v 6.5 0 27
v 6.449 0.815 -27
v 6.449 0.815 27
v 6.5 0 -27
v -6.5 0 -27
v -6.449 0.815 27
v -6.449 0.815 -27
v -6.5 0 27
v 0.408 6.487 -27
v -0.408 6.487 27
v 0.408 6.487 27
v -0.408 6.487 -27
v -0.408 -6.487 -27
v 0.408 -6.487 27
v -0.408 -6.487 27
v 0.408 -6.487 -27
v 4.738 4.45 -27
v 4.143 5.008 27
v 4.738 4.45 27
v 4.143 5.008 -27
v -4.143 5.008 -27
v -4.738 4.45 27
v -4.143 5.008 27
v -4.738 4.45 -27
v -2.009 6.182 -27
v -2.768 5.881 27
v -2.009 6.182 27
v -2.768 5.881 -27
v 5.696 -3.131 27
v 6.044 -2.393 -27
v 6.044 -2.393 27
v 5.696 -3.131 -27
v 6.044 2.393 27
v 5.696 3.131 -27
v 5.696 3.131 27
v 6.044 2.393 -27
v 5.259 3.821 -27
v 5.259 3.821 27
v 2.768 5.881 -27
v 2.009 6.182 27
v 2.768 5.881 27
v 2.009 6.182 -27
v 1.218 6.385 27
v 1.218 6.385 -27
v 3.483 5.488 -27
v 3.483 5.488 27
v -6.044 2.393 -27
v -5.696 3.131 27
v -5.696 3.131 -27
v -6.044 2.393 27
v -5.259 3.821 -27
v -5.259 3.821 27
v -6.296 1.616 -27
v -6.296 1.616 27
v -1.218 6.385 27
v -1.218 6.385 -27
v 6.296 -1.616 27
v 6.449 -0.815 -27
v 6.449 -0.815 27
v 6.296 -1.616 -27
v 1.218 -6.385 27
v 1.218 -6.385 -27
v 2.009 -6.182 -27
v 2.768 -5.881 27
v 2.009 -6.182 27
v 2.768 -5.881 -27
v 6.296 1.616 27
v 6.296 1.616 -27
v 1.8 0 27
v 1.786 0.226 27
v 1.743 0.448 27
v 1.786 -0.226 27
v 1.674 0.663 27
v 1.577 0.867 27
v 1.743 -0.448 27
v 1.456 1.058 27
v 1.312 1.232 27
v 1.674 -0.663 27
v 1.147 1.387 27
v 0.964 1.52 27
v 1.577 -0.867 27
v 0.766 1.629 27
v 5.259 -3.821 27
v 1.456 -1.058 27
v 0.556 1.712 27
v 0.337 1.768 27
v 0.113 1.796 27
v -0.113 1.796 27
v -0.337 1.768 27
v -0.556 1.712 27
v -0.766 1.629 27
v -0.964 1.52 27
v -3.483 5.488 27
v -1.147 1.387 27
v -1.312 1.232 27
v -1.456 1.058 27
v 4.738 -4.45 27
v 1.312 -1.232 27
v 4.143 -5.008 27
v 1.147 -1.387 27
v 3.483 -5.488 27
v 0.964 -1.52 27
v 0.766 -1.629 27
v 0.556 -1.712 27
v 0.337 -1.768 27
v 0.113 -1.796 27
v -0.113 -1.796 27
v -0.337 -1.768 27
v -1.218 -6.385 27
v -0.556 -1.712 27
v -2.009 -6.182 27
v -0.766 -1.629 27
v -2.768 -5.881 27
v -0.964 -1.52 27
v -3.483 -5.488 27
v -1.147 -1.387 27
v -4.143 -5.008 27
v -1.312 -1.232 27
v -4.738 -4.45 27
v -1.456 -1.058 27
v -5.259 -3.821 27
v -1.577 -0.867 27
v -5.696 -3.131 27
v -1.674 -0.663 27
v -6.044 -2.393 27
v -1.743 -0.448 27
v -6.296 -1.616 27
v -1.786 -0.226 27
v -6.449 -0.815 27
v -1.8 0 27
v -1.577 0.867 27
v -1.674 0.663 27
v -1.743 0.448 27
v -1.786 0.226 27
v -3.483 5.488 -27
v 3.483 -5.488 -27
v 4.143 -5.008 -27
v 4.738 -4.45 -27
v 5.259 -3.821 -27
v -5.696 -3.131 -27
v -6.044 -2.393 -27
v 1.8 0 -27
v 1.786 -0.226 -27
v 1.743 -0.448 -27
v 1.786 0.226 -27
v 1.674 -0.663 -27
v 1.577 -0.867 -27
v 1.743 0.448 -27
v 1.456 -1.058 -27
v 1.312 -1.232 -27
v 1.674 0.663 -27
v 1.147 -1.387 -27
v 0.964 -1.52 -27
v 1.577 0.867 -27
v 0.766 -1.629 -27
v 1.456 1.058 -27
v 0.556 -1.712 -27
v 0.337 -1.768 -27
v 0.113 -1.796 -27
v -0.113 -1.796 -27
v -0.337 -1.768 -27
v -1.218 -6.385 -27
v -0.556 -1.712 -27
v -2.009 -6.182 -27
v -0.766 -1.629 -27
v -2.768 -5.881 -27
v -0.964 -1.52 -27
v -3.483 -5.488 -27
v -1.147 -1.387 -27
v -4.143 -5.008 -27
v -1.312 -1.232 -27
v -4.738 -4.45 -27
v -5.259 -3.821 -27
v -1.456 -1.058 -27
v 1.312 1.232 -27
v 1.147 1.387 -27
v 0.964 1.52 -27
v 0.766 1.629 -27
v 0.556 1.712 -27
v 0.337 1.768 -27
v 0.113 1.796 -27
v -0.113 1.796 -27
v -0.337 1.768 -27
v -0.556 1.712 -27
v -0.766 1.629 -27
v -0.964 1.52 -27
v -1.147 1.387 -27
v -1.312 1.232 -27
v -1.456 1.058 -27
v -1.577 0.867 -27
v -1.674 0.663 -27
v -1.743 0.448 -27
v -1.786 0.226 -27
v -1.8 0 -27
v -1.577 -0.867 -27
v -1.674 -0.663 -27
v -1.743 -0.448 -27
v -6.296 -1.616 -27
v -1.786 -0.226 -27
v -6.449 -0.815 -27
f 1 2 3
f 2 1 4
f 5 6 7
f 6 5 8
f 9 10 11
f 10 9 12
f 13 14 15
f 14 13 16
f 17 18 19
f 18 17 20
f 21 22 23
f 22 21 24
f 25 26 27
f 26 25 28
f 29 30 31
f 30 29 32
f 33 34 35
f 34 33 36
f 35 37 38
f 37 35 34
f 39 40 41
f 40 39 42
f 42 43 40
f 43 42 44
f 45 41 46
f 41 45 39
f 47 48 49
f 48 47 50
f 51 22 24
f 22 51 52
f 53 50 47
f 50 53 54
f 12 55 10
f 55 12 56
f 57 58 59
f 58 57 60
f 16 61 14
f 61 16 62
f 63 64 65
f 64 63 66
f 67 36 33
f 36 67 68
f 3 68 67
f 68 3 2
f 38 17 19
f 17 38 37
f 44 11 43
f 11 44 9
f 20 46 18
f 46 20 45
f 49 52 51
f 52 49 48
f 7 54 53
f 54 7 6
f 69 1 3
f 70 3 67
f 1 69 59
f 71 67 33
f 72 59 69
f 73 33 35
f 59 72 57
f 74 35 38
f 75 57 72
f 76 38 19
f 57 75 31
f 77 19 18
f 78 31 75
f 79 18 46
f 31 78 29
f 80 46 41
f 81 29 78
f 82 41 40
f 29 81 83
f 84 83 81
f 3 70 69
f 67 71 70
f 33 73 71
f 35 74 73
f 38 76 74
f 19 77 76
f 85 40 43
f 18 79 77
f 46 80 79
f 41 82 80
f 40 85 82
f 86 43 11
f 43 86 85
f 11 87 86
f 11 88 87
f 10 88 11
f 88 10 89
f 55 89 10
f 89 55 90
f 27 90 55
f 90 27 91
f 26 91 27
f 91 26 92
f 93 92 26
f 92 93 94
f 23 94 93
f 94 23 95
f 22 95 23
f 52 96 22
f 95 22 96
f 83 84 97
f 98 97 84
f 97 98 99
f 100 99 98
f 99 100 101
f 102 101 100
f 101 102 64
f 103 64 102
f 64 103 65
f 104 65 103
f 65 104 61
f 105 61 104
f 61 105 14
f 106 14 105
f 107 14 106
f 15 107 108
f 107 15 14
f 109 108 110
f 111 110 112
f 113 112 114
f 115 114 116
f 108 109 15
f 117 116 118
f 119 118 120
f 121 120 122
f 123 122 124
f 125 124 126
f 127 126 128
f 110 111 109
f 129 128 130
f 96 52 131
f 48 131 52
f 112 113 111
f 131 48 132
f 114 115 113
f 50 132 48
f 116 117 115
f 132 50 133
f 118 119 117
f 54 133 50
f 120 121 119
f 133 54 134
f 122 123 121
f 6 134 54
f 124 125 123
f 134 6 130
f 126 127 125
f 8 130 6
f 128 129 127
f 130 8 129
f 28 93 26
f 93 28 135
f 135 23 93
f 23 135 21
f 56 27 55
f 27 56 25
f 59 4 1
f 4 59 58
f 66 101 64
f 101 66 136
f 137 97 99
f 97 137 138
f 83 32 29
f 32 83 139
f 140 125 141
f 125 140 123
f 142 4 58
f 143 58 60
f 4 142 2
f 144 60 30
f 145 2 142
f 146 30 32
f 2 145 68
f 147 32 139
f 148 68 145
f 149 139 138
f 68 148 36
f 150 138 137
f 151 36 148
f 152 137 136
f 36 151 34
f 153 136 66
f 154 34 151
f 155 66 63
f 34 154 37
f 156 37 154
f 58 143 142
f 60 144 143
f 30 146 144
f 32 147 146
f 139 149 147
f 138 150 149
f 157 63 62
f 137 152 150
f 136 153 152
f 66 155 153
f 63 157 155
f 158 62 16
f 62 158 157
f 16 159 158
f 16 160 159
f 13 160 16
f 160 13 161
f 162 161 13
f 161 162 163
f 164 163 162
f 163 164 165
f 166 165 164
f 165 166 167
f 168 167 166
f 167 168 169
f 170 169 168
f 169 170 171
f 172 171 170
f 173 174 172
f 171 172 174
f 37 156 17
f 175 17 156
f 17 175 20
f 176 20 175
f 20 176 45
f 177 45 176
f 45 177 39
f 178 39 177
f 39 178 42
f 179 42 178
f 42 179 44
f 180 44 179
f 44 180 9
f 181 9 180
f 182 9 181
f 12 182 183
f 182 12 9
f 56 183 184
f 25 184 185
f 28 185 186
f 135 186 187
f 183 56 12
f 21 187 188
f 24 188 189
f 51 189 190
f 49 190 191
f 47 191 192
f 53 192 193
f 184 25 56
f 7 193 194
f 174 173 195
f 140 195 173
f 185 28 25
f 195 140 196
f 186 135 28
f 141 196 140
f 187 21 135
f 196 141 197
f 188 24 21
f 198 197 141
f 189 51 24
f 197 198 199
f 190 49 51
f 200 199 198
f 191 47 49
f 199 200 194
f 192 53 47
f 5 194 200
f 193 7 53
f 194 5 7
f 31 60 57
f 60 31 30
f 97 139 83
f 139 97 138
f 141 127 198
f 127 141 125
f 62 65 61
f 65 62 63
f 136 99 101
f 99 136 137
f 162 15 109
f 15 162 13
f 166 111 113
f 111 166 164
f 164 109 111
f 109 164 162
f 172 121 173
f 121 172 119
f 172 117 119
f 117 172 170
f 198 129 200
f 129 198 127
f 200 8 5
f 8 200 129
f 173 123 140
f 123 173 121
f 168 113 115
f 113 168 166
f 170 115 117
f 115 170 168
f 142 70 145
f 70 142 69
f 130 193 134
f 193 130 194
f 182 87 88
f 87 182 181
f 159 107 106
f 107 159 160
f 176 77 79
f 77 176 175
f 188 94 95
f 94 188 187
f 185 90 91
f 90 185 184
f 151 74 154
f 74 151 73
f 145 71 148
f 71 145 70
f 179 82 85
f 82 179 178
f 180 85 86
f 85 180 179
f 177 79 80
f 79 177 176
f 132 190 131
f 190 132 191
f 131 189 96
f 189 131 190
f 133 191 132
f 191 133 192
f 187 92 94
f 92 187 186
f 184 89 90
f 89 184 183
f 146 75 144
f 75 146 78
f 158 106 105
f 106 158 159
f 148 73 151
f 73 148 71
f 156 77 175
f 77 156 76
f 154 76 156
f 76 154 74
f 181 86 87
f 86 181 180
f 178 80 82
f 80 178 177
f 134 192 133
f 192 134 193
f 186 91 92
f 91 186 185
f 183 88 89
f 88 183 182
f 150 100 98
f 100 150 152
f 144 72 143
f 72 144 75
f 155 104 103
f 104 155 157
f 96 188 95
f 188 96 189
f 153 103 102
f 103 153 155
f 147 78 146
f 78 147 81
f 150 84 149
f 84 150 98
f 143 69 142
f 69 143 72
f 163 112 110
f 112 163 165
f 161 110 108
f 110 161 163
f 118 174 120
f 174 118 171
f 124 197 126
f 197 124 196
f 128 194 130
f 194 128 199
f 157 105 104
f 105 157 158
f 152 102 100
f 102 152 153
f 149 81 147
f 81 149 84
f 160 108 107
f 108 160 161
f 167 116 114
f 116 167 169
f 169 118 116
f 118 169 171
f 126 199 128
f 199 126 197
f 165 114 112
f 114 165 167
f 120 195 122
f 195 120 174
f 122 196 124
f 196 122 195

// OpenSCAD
$fn = 50;


difference() {
	union() {
		translate(v = [0, 0, -27.0000000000]) {
			cylinder(h = 54, r = 6.5000000000);
		}
	}
	union() {
		translate(v = [0, 0, -100.0000000000]) {
			cylinder(h = 200, r = 1.8000000000);
		}
	}
}
